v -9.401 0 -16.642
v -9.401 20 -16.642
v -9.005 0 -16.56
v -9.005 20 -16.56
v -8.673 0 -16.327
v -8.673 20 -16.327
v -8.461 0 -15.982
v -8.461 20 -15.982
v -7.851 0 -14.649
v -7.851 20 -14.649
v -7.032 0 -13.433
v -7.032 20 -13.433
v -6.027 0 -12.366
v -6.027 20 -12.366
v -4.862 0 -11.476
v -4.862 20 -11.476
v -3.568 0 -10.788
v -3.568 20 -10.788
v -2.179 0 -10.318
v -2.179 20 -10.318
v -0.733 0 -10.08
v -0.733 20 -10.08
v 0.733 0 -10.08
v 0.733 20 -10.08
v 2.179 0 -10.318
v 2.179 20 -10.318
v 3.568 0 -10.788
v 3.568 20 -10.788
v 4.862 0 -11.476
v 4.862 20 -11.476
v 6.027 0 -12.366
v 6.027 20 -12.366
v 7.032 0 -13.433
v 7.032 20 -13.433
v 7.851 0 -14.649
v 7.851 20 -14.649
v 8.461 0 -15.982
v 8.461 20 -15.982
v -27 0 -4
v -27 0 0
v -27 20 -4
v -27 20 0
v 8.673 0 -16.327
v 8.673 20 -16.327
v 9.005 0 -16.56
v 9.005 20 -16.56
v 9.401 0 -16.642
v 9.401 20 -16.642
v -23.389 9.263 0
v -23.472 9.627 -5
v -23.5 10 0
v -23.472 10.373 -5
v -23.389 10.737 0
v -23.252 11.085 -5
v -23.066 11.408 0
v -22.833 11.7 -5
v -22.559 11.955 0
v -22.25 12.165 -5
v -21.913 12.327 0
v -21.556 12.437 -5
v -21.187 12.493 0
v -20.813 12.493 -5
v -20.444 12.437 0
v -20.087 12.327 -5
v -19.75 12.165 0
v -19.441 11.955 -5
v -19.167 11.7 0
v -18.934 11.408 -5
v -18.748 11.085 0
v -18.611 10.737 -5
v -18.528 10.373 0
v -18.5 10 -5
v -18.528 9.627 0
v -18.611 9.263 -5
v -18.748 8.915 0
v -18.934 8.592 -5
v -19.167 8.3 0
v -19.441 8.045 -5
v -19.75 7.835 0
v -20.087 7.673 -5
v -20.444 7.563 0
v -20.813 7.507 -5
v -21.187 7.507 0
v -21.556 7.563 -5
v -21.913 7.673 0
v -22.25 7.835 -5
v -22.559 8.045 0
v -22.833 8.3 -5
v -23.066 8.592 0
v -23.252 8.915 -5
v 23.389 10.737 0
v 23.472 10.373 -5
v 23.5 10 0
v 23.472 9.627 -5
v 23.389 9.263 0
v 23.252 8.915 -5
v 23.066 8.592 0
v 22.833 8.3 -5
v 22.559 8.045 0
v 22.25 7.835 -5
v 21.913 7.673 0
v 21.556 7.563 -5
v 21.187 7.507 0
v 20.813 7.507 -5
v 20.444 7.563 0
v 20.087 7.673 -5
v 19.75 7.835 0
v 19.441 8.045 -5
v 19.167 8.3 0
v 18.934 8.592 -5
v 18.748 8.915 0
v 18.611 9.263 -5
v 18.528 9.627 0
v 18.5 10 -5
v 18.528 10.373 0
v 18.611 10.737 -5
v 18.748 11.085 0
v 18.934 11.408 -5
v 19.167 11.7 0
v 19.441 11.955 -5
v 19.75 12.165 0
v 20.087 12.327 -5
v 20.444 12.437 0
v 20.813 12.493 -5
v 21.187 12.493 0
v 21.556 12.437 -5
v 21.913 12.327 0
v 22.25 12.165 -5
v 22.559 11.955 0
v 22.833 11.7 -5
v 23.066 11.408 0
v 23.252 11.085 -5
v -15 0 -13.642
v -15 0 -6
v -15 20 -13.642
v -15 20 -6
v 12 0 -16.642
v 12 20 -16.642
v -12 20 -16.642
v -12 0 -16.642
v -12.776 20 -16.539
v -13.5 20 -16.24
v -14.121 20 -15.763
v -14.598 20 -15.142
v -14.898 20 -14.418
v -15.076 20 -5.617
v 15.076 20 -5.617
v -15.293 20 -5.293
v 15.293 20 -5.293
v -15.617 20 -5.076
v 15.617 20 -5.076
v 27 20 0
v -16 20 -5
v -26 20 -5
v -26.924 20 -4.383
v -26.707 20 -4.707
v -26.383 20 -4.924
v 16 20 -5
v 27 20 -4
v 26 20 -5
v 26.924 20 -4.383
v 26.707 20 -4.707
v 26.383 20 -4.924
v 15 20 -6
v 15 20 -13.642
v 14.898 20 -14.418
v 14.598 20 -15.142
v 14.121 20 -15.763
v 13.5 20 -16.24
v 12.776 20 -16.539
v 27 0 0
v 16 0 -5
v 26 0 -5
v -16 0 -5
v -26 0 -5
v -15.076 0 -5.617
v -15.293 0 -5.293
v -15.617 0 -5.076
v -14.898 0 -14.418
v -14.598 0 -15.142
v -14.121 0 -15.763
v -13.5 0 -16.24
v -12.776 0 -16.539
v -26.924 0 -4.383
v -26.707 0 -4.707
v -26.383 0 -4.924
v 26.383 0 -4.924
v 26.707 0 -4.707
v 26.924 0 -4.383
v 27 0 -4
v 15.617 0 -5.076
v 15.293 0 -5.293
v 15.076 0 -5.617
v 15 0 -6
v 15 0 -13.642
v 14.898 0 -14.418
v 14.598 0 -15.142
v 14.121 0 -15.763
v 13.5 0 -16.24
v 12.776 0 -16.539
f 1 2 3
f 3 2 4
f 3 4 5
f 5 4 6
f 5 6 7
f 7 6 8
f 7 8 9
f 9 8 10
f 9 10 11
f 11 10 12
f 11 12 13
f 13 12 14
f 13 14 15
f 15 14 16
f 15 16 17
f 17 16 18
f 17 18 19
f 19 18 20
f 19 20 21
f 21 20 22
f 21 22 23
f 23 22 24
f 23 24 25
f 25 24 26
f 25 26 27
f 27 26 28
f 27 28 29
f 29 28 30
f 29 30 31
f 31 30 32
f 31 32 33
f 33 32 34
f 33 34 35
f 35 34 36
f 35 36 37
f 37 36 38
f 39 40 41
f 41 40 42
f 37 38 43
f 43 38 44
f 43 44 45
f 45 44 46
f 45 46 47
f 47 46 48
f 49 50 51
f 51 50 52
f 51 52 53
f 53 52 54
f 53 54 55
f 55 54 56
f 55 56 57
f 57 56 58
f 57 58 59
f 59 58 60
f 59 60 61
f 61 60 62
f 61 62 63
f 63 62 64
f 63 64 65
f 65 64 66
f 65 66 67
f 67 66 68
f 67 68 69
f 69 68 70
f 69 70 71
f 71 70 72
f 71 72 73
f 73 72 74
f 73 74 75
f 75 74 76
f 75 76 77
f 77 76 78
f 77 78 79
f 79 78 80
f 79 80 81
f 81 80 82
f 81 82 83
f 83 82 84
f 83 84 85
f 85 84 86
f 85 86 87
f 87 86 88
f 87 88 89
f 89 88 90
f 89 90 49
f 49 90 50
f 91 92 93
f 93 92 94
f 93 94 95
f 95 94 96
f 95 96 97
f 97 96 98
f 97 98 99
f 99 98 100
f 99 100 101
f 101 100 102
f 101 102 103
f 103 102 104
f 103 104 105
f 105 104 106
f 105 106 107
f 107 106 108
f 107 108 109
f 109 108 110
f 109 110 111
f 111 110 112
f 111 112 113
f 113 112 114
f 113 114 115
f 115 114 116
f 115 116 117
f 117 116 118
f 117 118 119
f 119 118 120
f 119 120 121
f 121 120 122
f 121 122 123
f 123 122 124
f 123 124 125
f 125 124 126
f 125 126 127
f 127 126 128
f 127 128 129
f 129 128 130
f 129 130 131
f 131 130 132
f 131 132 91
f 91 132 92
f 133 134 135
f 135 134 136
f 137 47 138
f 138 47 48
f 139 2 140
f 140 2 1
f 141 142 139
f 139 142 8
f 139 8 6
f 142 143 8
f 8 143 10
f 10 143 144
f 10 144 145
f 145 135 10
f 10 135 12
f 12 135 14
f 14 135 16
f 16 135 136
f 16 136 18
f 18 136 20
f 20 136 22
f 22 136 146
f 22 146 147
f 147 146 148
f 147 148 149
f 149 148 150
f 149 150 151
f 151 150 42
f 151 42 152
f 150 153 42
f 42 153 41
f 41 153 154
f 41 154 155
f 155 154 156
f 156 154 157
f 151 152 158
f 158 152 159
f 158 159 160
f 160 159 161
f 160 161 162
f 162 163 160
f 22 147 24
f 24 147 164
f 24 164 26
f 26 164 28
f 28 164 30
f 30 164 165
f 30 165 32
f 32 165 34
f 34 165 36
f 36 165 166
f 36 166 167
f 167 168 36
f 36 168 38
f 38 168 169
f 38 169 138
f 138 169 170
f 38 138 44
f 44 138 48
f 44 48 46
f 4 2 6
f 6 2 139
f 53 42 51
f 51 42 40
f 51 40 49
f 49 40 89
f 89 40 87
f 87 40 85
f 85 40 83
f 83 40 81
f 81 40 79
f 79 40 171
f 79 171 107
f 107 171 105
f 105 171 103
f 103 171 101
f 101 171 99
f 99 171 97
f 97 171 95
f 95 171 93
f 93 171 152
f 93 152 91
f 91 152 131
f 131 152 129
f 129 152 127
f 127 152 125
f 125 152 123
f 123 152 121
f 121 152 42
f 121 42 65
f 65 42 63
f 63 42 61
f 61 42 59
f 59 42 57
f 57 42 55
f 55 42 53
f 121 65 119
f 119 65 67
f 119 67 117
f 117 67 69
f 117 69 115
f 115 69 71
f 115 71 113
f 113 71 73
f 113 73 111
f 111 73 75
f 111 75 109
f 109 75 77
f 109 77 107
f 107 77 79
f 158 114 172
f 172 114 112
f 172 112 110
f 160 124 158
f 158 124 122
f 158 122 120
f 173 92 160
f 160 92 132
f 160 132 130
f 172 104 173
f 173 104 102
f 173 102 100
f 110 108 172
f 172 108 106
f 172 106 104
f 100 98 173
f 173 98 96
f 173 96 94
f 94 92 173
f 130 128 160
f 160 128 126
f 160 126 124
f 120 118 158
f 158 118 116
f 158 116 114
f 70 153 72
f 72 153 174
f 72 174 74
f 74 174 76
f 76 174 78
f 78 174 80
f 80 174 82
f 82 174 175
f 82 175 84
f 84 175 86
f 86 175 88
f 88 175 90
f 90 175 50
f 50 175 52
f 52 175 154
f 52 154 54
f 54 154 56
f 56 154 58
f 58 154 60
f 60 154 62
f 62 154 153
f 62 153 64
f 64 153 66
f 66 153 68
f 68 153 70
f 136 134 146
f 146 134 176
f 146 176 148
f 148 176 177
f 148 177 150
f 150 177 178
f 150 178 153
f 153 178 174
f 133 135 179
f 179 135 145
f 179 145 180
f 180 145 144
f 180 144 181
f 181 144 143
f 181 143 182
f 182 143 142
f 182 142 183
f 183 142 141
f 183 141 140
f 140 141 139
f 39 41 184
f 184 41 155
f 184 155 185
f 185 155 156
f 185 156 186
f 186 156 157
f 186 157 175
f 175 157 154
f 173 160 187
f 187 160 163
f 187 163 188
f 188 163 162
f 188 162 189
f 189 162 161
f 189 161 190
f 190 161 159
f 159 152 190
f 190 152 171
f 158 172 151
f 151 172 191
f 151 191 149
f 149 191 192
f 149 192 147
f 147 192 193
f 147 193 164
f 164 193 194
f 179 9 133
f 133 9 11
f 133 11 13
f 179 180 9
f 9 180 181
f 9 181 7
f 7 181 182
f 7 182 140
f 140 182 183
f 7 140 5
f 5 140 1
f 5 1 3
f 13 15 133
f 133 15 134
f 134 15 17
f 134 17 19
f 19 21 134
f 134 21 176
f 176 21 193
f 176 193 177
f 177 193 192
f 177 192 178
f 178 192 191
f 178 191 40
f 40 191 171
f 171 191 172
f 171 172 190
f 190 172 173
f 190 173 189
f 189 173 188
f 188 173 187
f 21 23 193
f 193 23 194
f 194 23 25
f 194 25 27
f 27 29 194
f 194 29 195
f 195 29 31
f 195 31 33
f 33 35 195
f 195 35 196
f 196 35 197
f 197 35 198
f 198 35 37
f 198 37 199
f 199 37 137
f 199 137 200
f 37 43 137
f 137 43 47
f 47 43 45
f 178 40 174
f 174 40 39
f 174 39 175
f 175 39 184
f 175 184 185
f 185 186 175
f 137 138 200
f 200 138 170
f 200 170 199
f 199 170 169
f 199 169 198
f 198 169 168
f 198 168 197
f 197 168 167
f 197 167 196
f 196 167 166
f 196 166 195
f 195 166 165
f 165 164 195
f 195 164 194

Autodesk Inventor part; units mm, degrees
ref_plane "YZ Plane" through (0, 0, 0) normal (1, 0, 0) x (0, 1, 0)
ref_plane "XZ Plane" through (0, 0, 0) normal (0, 1, 0) x (-1, 0, 0)
ref_plane "XY Plane" through (0, 0, 0) normal (0, 0, 1) x (1, 0, 0)
sketch "Sketch1" plane through (0, 0, 0) normal (0, 1, 0) x (-1, 0, 0)
  circle A0 centre (0, -19.05) radius 9
  line L0 (15, 0) -> (-15, 0)
  line L1 (-15, 0) -> (-15, -16.6415)
  line L2 (-15, -16.6415) -> (15, -16.6415)
  line L3 (15, -16.6415) -> (15, 0)
  line L4 (-27, -5) -> (27, -5)
  line L5 (27, -5) -> (27, 0)
  line L6 (27, 0) -> (-27, 0)
  line L7 (-27, 0) -> (-27, -5)
  line L8 (-27, -5) -> (27, 0) construction
  line L9 (27, -5) -> (-27, 0) construction
  point P0 (0, 0)
  point P1 (0, -2.5)
  point P2 (0, -2.5)
  point P3 (0, -2.5)
  point P4 (15, -5)
  point P5 (15, 0)
  point P6 (-15, -5)
  point P7 (-15, 0)
  point P8 (0, 0)
  dimension "d0" = 18
  dimension "d1" = 19.05
  dimension "d5" = 15
  dimension "d6" = 15
  dimension "d7" = 27
  dimension "d13" = 5
extrude "Extrusion1" add sketch "Sketch1" along normal blind 20 contours A0 L2 L1 L4 L3 | L4 L1 L0 L3 | L3 L6 L5 L4 | L4 L7 L6 L1
sketch "Sketch2" plane through (27, 0, -5) normal (0, 0, -1) x (-1, 0, 0)
  circle A0 centre (6, 10) radius 2.5
  line L0 (0, 0) -> (0, 20) projected
  line L1 (0, 20) -> (12, 20) projected
  point P0 (27, 0)
  point P1 (6, 20)
  dimension "d10" = 6
  dimension "d11" = 10
  dimension "d12" = 5
extrude "Extrusion2" cut sketch "Sketch2" against normal through all
mirror "Mirror1" about plane through (0, 0, 0) normal (1, 0, 0) of "Extrusion2"
fillet "Fillet2" radius 1 2 edges at (8.6718, 10, -16.6415) (-8.6718, 10, -16.6415)
fillet "Fillet3" radius 1 2 edges at (27, 10, -5) (-27, 10, -5)
sketch "Sketch3" plane through (-15, 0, -5) normal (0, 0, -1) x (-1, 0, 0)
  circle A0 centre (6, 10) radius 2.5 projected
  circle A1 centre (6, 10) radius 5
  line L0 (11, 20) -> (11, 0) projected
  point P0 (-15, 0)
fillet "Fillet4" radius 1 2 edges at (15, 10, -5) (-15, 10, -5)
fillet "Fillet5" radius 3 2 edges at (15, 10, -16.6415) (-15, 10, -16.6415)
properties part number "Shaft support"
